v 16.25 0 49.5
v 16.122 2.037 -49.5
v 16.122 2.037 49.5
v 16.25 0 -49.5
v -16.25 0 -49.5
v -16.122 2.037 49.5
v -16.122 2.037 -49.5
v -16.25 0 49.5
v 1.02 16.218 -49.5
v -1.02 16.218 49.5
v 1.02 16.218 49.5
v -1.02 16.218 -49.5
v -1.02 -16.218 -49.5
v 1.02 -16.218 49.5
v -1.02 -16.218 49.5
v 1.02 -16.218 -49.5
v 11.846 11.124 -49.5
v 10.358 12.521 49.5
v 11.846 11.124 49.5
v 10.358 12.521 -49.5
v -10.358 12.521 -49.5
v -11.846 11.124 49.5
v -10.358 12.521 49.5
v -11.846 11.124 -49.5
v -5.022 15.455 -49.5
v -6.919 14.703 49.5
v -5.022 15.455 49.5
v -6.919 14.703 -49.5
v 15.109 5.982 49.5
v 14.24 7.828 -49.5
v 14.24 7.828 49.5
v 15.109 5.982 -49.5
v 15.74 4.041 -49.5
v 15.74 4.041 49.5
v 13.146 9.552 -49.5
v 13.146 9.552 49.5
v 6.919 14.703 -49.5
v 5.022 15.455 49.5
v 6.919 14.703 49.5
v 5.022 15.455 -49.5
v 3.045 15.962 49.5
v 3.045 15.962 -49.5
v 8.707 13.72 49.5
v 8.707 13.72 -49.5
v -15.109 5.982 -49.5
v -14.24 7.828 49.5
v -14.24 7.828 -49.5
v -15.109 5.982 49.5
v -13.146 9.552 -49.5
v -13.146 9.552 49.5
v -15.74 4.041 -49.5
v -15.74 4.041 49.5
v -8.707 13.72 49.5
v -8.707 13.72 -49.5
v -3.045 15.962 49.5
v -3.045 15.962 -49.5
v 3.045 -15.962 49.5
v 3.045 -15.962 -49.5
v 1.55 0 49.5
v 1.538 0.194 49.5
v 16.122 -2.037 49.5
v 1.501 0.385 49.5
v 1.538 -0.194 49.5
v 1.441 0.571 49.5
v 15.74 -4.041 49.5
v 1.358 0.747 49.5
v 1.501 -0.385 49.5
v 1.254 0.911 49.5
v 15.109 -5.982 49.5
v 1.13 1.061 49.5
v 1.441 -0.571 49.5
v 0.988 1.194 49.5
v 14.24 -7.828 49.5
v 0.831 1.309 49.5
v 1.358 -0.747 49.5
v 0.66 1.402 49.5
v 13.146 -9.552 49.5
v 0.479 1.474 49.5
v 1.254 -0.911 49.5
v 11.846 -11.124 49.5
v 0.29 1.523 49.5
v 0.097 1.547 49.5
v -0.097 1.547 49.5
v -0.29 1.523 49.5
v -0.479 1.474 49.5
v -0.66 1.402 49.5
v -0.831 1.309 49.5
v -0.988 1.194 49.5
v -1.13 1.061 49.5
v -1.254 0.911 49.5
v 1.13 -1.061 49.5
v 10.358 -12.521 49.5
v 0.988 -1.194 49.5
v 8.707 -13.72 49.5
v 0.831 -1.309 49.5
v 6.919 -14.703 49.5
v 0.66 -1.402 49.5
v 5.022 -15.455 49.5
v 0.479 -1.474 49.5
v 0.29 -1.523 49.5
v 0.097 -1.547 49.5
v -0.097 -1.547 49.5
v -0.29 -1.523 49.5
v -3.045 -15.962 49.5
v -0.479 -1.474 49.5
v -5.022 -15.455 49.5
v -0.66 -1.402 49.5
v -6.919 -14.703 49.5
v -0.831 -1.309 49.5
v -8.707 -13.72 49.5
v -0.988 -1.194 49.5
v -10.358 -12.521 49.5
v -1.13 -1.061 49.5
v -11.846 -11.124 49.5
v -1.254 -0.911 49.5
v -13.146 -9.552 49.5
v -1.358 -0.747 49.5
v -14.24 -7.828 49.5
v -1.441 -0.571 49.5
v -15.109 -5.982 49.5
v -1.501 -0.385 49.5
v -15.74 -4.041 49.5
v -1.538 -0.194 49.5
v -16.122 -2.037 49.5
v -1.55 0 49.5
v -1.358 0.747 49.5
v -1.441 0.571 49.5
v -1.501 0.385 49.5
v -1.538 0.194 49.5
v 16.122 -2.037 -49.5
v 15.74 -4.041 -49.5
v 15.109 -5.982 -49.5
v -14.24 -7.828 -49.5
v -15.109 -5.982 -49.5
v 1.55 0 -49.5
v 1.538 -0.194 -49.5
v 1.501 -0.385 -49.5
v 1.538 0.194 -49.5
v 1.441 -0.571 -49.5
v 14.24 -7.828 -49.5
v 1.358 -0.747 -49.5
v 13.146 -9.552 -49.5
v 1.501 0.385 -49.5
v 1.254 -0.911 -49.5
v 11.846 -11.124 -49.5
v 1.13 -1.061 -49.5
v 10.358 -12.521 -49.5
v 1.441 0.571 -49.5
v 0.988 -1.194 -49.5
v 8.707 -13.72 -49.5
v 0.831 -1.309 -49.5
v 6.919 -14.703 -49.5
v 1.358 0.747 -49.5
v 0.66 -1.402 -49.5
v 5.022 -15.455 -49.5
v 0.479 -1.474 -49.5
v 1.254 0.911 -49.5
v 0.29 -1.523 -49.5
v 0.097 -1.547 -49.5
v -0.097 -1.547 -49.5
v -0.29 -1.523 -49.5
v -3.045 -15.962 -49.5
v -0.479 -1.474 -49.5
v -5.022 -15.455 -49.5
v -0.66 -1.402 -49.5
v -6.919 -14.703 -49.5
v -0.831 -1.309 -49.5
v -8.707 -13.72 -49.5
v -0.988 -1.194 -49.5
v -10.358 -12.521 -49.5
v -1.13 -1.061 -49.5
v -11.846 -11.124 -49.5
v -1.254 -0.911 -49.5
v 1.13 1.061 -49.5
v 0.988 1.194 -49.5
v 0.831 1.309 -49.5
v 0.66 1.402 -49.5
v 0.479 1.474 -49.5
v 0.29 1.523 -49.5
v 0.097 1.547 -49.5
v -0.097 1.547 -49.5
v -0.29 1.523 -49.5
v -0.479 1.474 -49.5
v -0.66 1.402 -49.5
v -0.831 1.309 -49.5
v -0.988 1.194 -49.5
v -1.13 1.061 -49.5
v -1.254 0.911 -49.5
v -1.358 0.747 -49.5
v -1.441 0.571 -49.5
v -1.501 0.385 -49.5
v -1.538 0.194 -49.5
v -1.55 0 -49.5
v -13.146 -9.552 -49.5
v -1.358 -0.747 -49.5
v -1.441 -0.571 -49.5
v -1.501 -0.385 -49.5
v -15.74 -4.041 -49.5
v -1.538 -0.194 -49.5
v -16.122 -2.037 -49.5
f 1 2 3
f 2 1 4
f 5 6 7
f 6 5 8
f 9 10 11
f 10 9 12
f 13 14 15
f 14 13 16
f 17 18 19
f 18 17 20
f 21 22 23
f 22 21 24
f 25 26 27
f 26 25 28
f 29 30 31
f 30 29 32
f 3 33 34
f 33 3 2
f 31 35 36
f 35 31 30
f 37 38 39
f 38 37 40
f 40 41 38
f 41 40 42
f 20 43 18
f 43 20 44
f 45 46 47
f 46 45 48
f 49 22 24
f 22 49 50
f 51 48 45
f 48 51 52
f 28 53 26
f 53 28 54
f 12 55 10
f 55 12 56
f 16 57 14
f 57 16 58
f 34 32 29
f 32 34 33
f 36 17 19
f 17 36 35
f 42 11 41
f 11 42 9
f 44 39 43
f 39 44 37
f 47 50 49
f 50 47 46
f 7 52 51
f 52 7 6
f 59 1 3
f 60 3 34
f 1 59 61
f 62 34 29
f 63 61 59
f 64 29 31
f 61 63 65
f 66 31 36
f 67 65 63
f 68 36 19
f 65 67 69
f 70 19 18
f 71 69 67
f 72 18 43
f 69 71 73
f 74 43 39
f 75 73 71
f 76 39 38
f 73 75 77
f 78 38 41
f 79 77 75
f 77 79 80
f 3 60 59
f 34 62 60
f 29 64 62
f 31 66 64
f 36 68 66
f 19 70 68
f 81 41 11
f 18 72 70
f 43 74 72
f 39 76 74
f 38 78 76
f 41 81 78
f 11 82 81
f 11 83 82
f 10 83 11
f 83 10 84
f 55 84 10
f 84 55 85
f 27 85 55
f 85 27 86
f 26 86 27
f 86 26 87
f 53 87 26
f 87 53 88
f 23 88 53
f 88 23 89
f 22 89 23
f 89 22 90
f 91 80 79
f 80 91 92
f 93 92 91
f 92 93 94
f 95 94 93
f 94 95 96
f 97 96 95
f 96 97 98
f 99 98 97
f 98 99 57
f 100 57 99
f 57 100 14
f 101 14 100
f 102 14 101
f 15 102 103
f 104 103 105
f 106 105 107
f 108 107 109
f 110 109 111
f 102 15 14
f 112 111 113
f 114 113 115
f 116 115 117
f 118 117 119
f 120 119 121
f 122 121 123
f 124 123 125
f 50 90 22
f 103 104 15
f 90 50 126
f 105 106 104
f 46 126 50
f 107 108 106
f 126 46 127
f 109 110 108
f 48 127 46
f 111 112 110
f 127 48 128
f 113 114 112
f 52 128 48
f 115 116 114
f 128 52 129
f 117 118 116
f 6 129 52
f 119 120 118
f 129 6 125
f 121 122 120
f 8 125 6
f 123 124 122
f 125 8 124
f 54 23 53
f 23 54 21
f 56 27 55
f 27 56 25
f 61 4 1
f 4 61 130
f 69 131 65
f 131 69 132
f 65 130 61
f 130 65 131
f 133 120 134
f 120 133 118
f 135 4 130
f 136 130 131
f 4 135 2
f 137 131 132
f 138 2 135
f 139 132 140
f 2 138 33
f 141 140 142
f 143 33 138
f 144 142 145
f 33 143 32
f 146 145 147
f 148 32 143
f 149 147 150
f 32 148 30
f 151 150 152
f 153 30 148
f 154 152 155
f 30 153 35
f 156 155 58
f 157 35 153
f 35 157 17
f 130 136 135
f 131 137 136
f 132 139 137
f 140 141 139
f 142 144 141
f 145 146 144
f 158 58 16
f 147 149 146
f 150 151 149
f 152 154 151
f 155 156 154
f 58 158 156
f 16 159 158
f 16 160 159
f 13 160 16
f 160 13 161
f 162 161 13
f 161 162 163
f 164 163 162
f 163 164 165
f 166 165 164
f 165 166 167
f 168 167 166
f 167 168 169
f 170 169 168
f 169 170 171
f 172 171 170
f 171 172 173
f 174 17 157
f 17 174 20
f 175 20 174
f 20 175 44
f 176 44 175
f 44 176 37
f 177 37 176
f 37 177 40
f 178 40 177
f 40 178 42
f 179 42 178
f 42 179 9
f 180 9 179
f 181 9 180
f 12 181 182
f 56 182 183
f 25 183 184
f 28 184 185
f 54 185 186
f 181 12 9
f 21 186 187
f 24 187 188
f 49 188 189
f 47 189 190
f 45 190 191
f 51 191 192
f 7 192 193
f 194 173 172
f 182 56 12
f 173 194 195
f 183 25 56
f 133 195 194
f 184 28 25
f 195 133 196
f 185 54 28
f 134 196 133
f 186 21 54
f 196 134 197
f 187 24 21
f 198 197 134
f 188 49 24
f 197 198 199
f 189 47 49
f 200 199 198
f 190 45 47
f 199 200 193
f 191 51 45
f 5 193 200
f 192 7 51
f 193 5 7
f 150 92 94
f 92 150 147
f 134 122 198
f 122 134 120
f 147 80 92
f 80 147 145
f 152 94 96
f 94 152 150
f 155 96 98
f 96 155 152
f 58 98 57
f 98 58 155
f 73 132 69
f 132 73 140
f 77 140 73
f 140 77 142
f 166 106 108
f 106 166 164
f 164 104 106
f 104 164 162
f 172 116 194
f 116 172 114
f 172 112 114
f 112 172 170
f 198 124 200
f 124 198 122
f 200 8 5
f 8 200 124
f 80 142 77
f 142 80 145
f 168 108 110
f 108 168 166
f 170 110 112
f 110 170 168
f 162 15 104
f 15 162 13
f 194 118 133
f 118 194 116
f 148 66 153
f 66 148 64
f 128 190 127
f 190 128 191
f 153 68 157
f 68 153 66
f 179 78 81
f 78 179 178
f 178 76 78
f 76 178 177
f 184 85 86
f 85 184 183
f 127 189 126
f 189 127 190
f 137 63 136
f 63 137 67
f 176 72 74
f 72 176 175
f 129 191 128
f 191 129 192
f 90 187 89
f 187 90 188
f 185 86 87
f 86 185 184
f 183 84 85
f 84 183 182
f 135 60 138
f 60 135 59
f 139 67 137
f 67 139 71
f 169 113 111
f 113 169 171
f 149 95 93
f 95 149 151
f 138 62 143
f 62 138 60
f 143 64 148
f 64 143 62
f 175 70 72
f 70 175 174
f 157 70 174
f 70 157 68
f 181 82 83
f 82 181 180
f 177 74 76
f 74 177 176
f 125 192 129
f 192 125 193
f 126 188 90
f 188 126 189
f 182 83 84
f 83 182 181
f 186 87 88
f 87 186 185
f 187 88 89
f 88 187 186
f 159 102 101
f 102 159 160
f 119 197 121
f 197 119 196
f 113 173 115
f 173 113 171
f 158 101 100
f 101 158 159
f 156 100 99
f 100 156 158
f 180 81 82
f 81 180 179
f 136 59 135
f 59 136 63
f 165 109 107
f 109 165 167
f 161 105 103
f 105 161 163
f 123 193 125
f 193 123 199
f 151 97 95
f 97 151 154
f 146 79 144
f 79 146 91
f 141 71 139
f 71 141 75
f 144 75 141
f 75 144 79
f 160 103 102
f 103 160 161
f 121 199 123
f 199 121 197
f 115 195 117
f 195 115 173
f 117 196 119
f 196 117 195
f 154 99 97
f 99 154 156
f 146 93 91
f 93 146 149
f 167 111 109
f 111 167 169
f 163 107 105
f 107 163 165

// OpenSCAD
$fn = 50;


difference() {
	union() {
		translate(v = [0, 0, -49.5000000000]) {
			cylinder(h = 99, r = 16.2500000000);
		}
	}
	union() {
		translate(v = [0, 0, -100.0000000000]) {
			cylinder(h = 200, r = 1.5500000000);
		}
	}
}
